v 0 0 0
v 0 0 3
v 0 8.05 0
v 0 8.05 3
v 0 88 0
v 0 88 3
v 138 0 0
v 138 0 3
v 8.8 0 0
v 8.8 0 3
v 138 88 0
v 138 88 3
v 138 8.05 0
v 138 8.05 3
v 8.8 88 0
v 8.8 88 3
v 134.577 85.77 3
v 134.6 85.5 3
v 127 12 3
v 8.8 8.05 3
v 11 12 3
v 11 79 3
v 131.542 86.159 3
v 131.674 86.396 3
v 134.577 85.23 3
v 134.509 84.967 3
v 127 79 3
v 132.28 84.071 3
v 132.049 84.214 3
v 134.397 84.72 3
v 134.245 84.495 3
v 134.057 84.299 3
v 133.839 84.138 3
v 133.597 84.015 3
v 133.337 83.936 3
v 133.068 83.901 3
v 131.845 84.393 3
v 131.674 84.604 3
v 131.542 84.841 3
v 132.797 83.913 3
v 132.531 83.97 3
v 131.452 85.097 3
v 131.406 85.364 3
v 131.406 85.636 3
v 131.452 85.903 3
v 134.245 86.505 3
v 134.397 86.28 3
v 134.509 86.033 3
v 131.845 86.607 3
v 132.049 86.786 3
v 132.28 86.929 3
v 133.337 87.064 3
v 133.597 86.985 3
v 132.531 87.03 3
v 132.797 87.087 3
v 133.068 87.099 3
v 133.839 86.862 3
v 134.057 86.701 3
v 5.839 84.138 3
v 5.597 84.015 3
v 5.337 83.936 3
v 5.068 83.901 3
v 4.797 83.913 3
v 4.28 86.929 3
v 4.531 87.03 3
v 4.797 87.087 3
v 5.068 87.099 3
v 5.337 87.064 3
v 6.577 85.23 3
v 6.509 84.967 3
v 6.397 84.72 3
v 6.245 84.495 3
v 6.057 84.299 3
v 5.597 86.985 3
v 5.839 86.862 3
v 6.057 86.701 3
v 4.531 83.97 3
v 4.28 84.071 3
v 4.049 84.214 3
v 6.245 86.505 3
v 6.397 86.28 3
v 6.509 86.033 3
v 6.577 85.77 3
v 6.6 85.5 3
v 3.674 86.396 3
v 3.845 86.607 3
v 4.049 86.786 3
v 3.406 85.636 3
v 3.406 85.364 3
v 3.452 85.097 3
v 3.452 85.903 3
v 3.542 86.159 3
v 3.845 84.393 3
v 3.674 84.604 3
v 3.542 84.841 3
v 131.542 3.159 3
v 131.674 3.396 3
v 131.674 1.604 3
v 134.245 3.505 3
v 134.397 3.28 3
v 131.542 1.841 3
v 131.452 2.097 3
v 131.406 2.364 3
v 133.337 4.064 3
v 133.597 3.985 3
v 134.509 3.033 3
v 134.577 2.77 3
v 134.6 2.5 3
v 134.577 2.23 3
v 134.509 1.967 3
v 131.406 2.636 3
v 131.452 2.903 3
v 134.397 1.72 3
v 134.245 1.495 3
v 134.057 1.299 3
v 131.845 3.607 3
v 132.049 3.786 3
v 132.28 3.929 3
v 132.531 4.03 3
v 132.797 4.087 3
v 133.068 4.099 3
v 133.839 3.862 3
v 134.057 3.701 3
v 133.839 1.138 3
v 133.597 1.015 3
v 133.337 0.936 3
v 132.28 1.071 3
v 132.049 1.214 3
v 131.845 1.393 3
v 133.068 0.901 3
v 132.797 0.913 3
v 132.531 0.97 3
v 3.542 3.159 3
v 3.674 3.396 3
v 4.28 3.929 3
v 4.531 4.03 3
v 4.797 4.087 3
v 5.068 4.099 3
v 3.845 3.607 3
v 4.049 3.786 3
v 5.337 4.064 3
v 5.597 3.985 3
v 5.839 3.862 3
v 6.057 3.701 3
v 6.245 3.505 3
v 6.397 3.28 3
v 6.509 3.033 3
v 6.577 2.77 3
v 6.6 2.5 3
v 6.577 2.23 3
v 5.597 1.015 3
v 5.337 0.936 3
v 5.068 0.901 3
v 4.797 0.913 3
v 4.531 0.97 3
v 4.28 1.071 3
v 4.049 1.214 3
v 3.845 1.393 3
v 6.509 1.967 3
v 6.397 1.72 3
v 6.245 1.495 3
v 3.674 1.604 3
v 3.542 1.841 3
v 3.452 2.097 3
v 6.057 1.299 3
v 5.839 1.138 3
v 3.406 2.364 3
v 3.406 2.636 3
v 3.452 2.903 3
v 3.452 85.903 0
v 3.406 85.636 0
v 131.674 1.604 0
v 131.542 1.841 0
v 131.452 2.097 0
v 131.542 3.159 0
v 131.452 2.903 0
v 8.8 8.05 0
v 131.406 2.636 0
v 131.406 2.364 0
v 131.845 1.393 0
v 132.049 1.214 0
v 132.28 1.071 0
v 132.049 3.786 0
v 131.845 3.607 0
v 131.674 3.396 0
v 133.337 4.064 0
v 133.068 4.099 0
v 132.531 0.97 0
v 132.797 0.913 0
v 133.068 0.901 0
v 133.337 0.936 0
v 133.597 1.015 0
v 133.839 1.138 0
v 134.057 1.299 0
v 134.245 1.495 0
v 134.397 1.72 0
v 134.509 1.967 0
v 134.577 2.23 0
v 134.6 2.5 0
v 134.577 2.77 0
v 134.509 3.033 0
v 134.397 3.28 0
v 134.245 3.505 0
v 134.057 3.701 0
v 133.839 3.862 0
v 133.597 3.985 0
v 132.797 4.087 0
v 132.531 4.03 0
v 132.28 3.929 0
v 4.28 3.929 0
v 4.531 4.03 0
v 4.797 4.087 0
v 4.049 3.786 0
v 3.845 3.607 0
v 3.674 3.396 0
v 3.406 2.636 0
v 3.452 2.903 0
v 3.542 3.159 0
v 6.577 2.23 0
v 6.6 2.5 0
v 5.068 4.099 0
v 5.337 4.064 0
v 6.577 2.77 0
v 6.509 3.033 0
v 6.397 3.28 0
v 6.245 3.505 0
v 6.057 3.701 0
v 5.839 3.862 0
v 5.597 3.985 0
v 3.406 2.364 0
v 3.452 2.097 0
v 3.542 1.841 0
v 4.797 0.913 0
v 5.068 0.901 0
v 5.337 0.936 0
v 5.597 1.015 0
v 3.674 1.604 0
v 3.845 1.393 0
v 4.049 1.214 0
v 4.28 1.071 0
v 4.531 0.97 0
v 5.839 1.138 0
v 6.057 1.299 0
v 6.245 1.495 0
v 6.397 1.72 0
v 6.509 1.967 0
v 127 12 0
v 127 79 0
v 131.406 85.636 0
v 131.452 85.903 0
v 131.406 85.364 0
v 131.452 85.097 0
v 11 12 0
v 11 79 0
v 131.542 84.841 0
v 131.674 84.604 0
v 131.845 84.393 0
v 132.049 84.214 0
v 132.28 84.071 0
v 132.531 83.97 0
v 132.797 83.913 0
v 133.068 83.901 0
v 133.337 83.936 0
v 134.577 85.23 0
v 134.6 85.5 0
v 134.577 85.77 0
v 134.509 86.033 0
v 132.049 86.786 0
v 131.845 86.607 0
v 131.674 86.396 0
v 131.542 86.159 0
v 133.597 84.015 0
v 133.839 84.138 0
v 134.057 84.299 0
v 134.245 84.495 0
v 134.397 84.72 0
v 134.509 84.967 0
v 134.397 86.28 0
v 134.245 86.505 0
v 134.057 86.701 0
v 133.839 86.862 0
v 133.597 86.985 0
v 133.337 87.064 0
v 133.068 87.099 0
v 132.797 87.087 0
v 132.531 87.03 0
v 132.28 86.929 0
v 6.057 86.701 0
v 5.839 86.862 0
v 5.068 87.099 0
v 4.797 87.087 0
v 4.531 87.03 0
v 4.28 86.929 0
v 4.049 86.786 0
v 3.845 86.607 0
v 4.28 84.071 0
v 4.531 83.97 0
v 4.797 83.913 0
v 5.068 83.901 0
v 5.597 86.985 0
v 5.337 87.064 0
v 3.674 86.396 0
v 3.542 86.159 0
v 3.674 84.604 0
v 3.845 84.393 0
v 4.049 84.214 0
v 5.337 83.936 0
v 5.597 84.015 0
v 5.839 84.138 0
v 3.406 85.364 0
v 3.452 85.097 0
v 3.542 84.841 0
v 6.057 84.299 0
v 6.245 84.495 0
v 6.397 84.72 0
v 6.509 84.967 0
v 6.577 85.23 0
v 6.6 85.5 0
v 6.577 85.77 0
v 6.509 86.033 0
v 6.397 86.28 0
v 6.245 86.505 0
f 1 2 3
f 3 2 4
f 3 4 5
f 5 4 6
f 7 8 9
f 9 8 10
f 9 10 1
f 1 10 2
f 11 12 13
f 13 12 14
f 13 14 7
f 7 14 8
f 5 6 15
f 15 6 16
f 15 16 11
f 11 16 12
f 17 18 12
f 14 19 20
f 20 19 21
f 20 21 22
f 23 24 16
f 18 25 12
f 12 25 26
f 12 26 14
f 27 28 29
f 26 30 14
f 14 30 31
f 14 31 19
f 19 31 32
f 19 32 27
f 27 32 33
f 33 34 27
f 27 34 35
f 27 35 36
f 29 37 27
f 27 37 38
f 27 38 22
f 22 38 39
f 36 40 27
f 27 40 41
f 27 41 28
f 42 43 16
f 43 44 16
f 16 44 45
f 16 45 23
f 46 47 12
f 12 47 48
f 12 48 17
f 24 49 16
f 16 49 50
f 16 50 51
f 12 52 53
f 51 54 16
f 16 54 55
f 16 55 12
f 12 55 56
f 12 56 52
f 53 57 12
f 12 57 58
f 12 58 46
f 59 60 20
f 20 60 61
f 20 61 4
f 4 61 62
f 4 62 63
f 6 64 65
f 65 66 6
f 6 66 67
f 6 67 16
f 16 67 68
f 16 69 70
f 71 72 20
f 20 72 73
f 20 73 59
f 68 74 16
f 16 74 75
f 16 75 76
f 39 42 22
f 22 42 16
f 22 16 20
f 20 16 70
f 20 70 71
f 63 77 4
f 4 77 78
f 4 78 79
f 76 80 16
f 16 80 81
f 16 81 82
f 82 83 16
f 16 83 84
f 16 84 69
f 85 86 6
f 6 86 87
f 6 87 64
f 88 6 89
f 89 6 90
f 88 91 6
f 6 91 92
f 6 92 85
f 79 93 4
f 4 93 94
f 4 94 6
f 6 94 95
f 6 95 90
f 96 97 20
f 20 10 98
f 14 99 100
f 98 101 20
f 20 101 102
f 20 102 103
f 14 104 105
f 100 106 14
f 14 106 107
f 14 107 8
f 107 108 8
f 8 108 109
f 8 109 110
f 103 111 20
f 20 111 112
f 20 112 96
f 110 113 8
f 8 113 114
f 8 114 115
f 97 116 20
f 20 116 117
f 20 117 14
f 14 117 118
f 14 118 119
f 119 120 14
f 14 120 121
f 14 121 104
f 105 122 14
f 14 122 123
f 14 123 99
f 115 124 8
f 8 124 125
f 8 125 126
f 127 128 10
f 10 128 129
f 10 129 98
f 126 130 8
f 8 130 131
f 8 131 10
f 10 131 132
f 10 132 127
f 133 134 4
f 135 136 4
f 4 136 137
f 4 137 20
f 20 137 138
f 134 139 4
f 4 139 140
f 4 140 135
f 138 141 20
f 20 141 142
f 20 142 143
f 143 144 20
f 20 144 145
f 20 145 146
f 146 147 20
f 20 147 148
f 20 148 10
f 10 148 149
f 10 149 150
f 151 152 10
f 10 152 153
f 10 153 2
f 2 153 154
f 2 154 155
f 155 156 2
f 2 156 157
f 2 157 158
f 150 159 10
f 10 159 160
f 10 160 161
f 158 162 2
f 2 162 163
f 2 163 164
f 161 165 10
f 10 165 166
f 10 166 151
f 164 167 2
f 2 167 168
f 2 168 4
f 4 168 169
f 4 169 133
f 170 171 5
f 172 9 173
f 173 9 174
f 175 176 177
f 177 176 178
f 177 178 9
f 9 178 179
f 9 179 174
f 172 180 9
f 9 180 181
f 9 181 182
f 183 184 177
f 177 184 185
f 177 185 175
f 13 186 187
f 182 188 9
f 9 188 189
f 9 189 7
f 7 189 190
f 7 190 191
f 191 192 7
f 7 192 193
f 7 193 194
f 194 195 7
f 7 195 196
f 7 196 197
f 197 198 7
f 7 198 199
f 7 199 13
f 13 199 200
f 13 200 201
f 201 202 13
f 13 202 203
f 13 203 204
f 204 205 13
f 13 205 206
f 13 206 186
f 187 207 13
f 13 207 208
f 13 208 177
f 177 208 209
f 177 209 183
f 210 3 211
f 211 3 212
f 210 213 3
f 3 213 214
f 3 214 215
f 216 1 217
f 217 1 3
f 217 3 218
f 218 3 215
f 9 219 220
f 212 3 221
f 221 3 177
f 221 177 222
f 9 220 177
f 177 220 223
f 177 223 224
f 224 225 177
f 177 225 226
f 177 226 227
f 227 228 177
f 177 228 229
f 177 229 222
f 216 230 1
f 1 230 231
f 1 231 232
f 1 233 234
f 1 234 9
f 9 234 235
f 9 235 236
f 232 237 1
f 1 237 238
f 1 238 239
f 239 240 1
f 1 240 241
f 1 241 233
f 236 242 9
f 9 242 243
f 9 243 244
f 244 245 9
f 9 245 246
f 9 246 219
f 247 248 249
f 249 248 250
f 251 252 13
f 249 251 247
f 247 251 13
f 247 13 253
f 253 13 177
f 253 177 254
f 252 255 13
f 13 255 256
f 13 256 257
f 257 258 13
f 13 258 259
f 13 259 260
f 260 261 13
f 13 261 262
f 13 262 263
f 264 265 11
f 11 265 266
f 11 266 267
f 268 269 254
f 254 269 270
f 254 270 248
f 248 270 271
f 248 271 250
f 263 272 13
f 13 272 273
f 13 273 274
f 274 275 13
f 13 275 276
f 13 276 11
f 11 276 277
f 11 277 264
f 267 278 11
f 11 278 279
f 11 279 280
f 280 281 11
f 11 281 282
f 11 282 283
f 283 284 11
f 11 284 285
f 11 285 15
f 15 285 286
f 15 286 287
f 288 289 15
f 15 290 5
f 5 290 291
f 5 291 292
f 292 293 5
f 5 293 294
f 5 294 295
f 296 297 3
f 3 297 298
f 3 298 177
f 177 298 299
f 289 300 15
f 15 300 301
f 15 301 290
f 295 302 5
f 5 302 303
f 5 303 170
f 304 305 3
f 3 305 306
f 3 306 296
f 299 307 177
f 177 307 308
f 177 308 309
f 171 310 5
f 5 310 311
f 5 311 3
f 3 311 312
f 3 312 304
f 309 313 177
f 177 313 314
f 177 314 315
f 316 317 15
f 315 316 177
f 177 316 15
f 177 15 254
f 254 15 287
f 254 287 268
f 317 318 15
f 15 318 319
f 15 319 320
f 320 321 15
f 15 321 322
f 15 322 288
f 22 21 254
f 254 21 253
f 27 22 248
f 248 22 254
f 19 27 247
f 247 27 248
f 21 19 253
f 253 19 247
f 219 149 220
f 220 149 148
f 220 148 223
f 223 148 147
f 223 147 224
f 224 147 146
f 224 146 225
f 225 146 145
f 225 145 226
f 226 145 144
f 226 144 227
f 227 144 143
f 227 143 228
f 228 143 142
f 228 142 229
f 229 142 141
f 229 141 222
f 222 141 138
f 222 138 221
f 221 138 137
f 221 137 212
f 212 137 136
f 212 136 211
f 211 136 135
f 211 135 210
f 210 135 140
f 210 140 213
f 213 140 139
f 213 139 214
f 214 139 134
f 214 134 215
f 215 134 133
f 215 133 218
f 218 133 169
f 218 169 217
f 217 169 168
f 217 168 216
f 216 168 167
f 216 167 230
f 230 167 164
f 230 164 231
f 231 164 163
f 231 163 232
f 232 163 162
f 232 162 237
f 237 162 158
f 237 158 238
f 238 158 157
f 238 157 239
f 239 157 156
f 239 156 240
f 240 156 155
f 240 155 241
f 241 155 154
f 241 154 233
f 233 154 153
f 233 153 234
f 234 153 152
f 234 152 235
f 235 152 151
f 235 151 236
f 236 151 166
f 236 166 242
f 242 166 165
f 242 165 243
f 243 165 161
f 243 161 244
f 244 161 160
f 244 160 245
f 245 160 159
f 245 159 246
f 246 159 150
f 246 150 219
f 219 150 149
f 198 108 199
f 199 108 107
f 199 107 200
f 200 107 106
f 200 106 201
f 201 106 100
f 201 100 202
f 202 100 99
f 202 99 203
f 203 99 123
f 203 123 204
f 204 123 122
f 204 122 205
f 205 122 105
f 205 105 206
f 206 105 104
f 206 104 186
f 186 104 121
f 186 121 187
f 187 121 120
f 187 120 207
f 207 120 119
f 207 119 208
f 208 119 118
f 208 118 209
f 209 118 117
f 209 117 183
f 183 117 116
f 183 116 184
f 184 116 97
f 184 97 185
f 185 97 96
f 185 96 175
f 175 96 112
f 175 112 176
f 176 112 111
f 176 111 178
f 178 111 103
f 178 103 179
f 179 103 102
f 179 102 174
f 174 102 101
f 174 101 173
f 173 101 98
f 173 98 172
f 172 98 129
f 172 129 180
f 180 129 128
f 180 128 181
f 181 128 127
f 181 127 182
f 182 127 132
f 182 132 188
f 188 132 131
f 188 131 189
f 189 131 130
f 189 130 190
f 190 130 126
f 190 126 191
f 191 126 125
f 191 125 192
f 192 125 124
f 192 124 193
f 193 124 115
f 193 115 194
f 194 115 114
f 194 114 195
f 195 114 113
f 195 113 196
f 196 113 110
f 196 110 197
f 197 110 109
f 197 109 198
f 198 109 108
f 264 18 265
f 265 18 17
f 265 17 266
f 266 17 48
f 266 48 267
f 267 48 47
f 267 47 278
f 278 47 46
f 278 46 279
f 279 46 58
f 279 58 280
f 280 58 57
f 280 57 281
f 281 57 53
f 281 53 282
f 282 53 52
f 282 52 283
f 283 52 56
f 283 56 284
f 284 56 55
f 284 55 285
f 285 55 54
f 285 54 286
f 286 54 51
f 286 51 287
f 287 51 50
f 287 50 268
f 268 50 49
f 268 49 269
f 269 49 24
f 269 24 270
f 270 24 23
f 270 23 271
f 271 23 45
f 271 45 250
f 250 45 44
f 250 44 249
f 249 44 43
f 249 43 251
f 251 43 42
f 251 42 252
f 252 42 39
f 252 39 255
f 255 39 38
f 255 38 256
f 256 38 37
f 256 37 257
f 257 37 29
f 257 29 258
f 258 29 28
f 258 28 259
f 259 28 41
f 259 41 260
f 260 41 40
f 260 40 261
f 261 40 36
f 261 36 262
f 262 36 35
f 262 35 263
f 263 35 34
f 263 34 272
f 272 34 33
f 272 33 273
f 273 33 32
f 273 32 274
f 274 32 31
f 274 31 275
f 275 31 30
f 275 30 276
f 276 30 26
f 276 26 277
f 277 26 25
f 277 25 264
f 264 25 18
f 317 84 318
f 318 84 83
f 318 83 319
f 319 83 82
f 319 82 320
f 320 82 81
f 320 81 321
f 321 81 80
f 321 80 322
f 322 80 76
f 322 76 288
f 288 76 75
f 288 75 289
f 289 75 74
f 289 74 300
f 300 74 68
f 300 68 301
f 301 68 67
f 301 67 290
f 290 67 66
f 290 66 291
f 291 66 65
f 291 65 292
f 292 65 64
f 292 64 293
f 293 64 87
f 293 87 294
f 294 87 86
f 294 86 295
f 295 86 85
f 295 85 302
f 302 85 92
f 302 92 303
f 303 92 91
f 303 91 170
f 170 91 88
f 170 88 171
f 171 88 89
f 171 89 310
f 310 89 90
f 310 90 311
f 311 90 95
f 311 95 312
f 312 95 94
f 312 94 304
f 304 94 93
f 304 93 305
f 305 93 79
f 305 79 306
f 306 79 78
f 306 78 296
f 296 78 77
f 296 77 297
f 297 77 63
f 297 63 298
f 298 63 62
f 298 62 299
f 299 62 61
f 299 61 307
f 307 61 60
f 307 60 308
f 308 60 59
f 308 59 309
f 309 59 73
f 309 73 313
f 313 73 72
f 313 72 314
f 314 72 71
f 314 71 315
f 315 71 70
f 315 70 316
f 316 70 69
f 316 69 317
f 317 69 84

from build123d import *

# Parameters (mm, degrees)
CROQUIS1_W                   = 138
CROQUIS1_H                   = 88
SALIENTE_EXTRUIR1_DEPTH      = 3
CORTAR_EXTRUIR1_REACH        = 165.698
CROQUIS2_W                   = 116
CROQUIS2_H                   = 67
TALADRO_DE_MARGEN_PARA_M31_D = 3.2


with BuildPart() as part:
    # Croquis1 → Saliente-Extruir1 (new body)
    with BuildSketch(Plane.XY):
        with Locations((69, 44)):
            Rectangle(CROQUIS1_W, CROQUIS1_H)
    extrude(amount=SALIENTE_EXTRUIR1_DEPTH)

    # Croquis2 → Cortar-Extruir1 (cut, up to next)
    with BuildSketch(Plane.XY.offset(3), mode=Mode.PRIVATE) as cortar_extruir1_sk1:
        with Locations((69, 45.5)):
            Rectangle(CROQUIS2_W, CROQUIS2_H)
    cortar_extruir1_tool1 = extrude(cortar_extruir1_sk1.sketch, amount=-CORTAR_EXTRUIR1_REACH, mode=Mode.PRIVATE) & part.part
    add(cortar_extruir1_tool1.solids().sort_by_distance((69, 45.5, 3))[0], mode=Mode.SUBTRACT)

    # Taladro de margen para M31 (through all)
    with Locations(Plane(origin=(5, 85.5, 3), x_dir=(1, 0, 0), z_dir=(0, 0, 1))):
        with Locations((0, 0), (128, 0), (128, -83), (0, -83)):
            Hole(TALADRO_DE_MARGEN_PARA_M31_D / 2)


solid = part.part
